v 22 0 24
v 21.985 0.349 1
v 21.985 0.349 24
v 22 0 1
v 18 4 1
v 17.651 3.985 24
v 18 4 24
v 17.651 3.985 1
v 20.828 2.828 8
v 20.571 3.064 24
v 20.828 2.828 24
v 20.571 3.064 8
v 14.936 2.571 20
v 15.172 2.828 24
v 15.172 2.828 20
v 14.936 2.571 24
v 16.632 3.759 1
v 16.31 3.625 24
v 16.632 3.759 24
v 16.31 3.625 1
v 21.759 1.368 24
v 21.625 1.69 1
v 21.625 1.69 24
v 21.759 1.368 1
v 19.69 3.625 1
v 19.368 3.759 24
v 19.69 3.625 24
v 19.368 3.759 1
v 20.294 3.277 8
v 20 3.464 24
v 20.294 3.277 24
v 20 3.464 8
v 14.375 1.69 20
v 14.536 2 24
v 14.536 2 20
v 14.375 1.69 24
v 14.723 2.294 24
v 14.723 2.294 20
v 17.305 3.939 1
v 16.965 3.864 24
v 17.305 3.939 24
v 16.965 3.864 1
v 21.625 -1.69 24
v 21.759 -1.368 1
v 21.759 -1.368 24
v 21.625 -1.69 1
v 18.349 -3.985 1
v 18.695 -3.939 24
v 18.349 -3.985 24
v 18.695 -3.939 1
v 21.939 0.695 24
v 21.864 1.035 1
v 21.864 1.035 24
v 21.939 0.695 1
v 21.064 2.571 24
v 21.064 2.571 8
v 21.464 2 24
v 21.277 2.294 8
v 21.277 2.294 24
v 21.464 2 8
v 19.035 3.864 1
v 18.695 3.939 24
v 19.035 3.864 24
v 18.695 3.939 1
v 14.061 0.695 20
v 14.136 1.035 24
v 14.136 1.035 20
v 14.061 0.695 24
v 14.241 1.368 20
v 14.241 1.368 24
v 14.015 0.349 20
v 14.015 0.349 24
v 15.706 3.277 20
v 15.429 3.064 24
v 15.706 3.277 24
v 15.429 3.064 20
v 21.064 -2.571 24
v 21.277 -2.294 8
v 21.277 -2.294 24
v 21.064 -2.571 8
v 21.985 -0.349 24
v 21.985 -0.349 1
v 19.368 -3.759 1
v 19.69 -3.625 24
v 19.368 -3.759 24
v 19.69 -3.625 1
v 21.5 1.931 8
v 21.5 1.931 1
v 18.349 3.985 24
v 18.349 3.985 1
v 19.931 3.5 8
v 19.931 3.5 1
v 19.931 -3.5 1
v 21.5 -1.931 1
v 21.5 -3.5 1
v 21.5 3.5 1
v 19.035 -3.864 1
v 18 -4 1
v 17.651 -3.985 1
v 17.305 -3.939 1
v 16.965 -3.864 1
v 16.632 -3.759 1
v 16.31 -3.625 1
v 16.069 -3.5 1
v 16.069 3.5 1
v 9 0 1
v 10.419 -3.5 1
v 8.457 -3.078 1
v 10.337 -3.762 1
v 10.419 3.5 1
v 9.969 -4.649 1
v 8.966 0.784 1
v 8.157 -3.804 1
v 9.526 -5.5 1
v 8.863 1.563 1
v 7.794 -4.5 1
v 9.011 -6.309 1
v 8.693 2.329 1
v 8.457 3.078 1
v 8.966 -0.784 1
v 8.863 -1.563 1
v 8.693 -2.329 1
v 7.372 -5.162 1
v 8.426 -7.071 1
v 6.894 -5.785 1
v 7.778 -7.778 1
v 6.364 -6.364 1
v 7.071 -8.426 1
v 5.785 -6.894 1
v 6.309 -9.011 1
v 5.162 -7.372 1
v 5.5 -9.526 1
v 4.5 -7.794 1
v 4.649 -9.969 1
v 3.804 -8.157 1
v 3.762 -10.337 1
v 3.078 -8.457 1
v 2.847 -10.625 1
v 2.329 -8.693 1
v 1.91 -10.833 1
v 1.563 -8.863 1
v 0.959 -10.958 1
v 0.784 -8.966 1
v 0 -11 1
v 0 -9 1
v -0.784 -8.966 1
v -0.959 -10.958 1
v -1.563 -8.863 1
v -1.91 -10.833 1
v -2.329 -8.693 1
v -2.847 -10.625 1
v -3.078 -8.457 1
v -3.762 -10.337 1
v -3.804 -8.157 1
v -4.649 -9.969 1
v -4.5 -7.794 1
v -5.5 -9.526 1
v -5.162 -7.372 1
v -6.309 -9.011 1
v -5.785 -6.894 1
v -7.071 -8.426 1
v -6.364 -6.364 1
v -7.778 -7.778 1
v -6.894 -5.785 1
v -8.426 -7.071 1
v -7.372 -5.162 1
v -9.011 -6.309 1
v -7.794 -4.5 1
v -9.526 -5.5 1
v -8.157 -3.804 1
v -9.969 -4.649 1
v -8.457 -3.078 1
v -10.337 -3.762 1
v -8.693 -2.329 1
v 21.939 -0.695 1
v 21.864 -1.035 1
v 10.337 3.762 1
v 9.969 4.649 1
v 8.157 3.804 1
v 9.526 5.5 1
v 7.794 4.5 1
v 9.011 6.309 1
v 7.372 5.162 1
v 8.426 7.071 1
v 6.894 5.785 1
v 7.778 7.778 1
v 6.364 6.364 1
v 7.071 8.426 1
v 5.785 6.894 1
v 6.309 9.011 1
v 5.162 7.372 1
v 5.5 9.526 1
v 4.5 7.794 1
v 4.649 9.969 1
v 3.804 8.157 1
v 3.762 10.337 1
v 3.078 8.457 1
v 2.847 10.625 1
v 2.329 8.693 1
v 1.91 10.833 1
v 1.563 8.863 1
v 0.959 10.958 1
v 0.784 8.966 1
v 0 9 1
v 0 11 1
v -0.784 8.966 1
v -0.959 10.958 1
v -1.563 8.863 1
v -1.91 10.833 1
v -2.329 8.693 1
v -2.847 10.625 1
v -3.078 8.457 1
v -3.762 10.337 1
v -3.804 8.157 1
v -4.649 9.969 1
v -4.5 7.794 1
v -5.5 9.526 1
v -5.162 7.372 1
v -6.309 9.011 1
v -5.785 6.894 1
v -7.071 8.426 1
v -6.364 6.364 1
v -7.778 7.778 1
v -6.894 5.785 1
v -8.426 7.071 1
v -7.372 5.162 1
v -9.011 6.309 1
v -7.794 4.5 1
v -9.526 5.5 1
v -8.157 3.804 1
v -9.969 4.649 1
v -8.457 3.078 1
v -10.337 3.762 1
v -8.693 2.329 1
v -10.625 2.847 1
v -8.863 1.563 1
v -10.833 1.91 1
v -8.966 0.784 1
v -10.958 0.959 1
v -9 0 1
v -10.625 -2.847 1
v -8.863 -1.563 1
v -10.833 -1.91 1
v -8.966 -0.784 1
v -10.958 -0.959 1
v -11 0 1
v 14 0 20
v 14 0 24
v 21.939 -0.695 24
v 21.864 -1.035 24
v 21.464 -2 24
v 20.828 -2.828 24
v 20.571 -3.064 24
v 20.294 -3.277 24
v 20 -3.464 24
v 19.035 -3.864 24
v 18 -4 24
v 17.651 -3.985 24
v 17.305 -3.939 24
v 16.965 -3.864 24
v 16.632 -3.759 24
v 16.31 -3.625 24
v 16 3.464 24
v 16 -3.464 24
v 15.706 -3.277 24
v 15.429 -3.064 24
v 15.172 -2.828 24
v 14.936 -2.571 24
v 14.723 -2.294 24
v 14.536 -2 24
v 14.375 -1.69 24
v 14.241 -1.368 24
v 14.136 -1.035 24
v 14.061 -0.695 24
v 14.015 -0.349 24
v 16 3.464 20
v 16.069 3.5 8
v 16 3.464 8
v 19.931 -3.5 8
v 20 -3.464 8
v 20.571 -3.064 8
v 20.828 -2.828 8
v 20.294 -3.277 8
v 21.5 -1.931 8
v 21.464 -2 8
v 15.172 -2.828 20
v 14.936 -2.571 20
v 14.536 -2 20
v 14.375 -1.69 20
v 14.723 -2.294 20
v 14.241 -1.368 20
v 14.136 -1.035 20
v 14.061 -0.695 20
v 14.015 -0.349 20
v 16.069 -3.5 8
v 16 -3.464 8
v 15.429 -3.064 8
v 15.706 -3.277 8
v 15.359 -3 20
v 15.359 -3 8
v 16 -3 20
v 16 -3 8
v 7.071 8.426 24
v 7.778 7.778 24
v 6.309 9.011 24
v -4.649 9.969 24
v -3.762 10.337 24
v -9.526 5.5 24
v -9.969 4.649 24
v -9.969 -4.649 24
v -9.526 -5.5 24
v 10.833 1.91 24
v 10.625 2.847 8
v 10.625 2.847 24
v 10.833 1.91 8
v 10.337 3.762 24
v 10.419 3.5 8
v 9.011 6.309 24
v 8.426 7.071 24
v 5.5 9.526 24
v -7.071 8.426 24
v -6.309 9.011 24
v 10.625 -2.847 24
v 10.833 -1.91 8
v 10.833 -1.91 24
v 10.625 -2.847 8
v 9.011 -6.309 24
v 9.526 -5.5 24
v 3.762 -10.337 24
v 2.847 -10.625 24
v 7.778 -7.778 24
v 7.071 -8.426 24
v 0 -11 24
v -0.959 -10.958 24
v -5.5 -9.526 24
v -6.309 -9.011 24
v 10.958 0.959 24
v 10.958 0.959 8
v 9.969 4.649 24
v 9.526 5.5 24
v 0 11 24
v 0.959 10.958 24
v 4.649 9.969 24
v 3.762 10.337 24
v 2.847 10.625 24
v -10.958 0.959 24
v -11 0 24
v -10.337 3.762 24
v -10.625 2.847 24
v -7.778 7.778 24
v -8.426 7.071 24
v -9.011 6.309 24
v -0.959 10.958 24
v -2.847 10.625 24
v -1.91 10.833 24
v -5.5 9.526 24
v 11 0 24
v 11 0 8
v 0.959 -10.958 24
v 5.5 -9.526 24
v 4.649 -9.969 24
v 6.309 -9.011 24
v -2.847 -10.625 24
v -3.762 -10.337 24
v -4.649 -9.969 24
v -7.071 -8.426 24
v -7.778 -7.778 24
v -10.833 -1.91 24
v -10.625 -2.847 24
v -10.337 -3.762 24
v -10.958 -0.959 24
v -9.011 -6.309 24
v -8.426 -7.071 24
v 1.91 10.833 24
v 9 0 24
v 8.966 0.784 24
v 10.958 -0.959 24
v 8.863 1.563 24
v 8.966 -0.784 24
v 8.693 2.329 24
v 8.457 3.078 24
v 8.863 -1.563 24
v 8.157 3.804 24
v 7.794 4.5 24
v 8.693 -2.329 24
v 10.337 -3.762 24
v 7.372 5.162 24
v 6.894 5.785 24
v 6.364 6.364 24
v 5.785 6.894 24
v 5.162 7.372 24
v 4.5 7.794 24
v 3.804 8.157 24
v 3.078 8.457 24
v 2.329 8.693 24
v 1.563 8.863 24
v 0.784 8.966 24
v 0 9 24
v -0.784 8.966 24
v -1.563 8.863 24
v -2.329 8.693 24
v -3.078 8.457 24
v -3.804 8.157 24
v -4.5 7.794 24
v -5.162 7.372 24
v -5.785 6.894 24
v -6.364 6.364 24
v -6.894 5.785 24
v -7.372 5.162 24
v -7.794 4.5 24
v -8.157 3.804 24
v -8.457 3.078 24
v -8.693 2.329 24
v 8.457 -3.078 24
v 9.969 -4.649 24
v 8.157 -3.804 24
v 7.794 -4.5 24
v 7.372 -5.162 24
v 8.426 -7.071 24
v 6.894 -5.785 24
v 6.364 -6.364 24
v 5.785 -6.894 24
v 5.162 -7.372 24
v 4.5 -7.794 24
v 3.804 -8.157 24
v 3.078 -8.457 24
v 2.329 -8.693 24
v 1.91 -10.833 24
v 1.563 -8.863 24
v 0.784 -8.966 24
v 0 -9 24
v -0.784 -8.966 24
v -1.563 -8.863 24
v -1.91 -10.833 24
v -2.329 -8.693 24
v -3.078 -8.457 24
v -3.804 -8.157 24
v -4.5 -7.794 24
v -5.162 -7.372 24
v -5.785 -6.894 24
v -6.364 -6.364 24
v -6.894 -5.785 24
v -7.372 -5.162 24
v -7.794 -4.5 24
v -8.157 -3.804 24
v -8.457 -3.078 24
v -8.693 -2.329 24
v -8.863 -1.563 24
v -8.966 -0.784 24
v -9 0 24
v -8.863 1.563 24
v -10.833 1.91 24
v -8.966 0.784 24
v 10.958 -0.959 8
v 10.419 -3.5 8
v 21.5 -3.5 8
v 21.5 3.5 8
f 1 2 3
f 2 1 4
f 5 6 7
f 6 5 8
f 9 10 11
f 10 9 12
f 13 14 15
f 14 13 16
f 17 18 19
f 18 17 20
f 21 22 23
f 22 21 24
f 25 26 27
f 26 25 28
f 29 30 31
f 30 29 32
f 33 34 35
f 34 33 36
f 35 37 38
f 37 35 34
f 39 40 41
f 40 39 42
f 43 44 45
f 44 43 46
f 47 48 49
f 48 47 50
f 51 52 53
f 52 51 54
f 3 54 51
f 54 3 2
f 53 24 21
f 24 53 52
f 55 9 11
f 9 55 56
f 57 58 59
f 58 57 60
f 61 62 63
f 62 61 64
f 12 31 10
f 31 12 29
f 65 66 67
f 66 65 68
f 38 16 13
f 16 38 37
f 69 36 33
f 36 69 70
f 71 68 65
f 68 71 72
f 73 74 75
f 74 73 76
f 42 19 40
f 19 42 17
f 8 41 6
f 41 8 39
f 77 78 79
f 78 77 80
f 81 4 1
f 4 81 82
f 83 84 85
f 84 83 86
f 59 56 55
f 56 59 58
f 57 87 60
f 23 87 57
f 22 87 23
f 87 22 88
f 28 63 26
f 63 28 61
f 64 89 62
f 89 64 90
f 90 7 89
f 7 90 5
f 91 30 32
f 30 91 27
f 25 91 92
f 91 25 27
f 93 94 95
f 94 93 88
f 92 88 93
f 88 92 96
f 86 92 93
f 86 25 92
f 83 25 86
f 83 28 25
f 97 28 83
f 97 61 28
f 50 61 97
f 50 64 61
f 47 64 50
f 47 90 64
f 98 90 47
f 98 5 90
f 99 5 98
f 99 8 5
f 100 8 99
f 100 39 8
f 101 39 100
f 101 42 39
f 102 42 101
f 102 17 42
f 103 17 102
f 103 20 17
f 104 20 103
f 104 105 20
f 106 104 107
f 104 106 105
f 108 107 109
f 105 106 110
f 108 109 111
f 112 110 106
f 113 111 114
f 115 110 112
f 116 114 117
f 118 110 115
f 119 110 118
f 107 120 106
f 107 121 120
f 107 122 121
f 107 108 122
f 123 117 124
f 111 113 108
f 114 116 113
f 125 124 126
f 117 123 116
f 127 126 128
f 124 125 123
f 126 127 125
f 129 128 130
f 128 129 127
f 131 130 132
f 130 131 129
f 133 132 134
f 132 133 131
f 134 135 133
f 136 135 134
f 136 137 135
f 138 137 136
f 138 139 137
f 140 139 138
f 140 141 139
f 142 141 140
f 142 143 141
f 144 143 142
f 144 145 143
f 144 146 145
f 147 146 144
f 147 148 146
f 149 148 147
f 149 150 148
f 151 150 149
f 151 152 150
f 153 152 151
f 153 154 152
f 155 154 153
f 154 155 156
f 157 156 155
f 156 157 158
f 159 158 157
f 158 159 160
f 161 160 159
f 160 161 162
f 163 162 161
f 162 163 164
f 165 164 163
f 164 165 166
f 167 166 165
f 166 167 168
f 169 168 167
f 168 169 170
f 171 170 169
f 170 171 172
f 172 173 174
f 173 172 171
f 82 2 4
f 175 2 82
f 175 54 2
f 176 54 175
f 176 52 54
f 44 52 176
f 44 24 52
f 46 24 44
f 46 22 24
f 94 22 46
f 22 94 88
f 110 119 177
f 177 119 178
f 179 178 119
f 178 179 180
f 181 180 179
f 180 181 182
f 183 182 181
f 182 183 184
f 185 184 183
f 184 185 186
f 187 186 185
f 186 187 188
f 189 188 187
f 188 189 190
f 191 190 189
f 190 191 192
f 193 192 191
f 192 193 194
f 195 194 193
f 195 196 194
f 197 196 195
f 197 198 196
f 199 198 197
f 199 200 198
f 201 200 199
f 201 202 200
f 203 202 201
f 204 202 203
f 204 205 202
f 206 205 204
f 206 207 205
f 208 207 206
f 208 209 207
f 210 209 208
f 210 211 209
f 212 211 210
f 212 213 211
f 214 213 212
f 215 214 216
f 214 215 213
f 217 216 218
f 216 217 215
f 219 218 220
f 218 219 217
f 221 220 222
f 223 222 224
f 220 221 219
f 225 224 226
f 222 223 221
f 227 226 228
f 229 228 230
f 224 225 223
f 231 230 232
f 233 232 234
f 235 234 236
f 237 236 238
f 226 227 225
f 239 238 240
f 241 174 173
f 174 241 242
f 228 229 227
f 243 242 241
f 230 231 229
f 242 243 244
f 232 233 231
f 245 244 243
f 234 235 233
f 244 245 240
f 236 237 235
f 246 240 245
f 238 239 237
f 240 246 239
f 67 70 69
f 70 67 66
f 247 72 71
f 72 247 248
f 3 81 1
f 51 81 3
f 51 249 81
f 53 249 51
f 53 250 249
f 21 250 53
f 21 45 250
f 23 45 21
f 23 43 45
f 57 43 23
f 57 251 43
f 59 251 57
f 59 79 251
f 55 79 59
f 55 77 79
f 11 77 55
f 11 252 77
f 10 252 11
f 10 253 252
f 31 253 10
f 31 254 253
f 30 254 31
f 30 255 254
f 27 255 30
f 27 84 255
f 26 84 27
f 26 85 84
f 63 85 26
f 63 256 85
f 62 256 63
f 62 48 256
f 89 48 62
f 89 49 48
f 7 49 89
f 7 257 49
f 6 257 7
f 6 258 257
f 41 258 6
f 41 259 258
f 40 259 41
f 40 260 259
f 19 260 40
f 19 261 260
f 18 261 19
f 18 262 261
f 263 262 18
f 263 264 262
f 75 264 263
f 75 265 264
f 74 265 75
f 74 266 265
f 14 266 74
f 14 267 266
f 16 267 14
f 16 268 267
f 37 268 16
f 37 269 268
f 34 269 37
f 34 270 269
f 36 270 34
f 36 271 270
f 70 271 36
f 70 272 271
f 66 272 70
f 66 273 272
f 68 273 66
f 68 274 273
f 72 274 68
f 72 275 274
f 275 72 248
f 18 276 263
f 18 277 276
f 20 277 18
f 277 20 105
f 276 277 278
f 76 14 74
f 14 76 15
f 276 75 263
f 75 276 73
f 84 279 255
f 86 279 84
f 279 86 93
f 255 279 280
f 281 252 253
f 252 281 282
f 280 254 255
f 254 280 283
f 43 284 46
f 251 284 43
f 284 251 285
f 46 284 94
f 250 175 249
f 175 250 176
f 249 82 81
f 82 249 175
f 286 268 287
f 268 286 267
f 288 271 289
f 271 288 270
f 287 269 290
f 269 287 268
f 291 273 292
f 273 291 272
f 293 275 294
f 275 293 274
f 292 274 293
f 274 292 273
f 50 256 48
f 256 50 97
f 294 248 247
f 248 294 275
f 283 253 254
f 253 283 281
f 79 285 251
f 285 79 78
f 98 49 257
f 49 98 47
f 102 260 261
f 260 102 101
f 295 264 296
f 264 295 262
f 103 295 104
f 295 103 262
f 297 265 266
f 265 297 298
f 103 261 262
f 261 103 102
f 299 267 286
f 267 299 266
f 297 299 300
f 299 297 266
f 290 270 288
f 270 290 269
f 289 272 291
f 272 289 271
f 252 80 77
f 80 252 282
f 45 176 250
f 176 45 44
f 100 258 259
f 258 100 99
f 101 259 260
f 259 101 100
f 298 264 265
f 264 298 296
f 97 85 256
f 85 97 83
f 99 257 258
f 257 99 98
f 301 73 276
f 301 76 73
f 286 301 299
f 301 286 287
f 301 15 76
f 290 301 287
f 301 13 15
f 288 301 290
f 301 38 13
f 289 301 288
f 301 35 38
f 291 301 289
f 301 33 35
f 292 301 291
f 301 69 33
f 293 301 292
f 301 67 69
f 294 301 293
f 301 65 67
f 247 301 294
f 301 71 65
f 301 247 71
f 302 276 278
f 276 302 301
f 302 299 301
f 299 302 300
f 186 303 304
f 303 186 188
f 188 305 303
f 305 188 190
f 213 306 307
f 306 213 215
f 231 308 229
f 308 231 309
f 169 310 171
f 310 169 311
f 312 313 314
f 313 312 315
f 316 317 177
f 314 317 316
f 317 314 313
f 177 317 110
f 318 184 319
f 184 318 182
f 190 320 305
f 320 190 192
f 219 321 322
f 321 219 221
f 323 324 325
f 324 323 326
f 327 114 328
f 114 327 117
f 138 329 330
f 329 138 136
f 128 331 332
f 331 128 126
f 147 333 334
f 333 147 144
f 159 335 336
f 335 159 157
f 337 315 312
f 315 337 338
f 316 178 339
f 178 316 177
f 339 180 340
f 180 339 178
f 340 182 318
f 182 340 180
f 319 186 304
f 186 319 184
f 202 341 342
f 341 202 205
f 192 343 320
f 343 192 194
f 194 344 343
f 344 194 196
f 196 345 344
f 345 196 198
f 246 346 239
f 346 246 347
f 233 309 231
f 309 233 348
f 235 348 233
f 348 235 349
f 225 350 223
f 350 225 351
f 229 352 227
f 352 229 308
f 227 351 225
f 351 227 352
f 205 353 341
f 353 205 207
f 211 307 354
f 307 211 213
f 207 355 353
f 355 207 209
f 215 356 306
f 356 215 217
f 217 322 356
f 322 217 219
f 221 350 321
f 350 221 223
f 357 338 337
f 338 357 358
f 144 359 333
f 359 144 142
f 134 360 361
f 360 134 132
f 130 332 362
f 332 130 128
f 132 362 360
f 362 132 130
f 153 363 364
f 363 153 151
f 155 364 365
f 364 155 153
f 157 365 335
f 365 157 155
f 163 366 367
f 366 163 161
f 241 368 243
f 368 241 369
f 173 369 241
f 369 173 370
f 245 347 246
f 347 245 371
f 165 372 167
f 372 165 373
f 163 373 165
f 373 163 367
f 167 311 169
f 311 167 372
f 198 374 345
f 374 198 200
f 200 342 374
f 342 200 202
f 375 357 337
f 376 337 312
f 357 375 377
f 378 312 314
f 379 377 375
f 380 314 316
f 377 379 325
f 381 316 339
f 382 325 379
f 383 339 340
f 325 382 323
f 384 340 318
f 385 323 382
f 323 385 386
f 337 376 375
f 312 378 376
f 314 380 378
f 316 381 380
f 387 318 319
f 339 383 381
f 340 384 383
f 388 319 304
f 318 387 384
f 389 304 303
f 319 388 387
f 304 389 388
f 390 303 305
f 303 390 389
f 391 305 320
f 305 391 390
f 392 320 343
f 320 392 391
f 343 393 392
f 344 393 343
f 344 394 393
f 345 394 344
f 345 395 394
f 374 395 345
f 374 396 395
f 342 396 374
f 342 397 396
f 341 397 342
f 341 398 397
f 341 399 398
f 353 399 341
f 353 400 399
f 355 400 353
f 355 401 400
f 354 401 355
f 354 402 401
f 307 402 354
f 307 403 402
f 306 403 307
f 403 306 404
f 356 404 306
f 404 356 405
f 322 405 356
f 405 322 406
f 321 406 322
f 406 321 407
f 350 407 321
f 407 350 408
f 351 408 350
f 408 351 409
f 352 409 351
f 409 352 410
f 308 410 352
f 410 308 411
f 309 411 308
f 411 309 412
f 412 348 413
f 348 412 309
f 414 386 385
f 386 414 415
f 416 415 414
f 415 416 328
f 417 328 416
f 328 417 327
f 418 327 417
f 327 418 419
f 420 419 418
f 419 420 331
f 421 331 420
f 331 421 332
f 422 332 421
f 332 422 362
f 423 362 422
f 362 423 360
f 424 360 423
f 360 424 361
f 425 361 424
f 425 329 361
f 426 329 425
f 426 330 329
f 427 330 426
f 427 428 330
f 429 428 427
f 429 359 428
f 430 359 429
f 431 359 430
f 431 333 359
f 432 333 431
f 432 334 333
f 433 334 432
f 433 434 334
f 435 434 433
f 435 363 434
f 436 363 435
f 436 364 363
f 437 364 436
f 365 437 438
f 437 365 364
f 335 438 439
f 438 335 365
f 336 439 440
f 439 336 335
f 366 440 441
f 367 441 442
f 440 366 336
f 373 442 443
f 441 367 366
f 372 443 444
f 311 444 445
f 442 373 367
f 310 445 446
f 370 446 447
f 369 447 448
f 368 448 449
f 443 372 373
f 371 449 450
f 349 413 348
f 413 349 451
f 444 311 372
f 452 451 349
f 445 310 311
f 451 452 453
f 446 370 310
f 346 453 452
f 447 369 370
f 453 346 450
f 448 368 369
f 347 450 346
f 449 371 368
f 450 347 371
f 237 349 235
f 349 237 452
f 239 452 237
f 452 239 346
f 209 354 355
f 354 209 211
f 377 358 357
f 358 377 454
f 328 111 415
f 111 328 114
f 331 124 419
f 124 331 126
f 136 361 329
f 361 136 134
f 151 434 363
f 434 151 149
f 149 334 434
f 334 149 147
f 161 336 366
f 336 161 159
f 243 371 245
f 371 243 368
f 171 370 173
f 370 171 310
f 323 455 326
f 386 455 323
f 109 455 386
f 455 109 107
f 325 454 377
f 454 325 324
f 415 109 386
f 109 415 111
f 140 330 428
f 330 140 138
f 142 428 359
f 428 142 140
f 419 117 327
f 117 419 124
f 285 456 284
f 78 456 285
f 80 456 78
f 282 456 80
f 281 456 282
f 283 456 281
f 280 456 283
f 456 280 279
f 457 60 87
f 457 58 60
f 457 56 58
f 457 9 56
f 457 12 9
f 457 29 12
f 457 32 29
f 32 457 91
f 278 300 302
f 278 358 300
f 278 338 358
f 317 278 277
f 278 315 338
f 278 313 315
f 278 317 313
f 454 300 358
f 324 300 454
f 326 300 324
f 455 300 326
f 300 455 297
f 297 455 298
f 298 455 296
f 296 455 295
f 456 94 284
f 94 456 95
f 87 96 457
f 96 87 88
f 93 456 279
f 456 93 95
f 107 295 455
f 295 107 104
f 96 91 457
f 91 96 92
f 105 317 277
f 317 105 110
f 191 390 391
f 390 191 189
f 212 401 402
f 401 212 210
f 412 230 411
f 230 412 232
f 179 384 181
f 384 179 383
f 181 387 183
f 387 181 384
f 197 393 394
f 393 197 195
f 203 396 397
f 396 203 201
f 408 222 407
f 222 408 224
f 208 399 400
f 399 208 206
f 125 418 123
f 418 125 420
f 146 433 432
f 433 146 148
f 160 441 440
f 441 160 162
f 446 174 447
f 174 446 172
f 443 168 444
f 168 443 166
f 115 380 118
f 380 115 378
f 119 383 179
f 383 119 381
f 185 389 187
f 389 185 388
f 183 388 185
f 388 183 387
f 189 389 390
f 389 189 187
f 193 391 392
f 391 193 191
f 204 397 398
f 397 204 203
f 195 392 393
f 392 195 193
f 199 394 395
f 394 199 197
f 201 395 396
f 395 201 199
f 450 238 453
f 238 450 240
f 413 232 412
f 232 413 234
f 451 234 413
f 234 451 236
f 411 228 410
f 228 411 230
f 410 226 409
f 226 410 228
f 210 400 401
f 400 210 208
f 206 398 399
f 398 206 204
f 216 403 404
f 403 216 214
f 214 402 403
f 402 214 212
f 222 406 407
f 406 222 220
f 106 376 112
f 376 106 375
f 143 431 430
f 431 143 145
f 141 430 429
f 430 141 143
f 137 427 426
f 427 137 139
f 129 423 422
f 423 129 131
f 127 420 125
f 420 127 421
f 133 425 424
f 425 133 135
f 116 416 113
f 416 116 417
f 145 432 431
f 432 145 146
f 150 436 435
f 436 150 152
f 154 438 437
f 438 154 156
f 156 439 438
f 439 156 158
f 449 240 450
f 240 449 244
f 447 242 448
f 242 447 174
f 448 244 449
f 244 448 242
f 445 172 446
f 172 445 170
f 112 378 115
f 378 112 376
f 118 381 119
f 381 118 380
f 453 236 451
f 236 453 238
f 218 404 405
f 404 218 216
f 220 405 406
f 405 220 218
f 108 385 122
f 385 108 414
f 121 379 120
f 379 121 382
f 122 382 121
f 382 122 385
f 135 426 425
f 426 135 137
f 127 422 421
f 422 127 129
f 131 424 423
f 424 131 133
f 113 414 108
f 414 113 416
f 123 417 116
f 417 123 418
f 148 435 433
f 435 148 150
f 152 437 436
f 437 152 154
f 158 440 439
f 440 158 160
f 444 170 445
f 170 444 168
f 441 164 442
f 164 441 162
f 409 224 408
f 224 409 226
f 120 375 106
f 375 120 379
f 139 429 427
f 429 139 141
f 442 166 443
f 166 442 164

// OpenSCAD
$fs = 0.1;  // Don't genrate smaller facets than 0.1 mm
$fa = 5;    // Don't generate larger angles than 5 degrees

ic = 18; // inner diameter of pipe holder
pht = 4; // thickness of the pipe holder
phh = 25; // height of pipeholder

//v2 notes: increased hook cyliender radius from 3.5 to 4, increased inner diameter of pipe holder by 1

union() { 
    }

hook(phh);
pipeholder(ic, pht, phh);

module pipeholder (ic, pht, phh) {
    difference () {
        union() { 
            color("yellow") translate([0,0,1]) cylinder(h=(phh-2), r=((ic/2)+(pht/2)));
            color ("purple") translate([10,-3.5,1]) cube ([11.5,7,7]);
        }
        color("Green") cylinder(h=phh, r=ic/2);
 
    }   
}
   
module hook (phh) {
    difference() {
        color("red") translate([18,0,1]) cylinder(h=(phh-2), r=4);
        color("blue") translate([13,-3,3]) cube ([3,8,17]);
    }
}
